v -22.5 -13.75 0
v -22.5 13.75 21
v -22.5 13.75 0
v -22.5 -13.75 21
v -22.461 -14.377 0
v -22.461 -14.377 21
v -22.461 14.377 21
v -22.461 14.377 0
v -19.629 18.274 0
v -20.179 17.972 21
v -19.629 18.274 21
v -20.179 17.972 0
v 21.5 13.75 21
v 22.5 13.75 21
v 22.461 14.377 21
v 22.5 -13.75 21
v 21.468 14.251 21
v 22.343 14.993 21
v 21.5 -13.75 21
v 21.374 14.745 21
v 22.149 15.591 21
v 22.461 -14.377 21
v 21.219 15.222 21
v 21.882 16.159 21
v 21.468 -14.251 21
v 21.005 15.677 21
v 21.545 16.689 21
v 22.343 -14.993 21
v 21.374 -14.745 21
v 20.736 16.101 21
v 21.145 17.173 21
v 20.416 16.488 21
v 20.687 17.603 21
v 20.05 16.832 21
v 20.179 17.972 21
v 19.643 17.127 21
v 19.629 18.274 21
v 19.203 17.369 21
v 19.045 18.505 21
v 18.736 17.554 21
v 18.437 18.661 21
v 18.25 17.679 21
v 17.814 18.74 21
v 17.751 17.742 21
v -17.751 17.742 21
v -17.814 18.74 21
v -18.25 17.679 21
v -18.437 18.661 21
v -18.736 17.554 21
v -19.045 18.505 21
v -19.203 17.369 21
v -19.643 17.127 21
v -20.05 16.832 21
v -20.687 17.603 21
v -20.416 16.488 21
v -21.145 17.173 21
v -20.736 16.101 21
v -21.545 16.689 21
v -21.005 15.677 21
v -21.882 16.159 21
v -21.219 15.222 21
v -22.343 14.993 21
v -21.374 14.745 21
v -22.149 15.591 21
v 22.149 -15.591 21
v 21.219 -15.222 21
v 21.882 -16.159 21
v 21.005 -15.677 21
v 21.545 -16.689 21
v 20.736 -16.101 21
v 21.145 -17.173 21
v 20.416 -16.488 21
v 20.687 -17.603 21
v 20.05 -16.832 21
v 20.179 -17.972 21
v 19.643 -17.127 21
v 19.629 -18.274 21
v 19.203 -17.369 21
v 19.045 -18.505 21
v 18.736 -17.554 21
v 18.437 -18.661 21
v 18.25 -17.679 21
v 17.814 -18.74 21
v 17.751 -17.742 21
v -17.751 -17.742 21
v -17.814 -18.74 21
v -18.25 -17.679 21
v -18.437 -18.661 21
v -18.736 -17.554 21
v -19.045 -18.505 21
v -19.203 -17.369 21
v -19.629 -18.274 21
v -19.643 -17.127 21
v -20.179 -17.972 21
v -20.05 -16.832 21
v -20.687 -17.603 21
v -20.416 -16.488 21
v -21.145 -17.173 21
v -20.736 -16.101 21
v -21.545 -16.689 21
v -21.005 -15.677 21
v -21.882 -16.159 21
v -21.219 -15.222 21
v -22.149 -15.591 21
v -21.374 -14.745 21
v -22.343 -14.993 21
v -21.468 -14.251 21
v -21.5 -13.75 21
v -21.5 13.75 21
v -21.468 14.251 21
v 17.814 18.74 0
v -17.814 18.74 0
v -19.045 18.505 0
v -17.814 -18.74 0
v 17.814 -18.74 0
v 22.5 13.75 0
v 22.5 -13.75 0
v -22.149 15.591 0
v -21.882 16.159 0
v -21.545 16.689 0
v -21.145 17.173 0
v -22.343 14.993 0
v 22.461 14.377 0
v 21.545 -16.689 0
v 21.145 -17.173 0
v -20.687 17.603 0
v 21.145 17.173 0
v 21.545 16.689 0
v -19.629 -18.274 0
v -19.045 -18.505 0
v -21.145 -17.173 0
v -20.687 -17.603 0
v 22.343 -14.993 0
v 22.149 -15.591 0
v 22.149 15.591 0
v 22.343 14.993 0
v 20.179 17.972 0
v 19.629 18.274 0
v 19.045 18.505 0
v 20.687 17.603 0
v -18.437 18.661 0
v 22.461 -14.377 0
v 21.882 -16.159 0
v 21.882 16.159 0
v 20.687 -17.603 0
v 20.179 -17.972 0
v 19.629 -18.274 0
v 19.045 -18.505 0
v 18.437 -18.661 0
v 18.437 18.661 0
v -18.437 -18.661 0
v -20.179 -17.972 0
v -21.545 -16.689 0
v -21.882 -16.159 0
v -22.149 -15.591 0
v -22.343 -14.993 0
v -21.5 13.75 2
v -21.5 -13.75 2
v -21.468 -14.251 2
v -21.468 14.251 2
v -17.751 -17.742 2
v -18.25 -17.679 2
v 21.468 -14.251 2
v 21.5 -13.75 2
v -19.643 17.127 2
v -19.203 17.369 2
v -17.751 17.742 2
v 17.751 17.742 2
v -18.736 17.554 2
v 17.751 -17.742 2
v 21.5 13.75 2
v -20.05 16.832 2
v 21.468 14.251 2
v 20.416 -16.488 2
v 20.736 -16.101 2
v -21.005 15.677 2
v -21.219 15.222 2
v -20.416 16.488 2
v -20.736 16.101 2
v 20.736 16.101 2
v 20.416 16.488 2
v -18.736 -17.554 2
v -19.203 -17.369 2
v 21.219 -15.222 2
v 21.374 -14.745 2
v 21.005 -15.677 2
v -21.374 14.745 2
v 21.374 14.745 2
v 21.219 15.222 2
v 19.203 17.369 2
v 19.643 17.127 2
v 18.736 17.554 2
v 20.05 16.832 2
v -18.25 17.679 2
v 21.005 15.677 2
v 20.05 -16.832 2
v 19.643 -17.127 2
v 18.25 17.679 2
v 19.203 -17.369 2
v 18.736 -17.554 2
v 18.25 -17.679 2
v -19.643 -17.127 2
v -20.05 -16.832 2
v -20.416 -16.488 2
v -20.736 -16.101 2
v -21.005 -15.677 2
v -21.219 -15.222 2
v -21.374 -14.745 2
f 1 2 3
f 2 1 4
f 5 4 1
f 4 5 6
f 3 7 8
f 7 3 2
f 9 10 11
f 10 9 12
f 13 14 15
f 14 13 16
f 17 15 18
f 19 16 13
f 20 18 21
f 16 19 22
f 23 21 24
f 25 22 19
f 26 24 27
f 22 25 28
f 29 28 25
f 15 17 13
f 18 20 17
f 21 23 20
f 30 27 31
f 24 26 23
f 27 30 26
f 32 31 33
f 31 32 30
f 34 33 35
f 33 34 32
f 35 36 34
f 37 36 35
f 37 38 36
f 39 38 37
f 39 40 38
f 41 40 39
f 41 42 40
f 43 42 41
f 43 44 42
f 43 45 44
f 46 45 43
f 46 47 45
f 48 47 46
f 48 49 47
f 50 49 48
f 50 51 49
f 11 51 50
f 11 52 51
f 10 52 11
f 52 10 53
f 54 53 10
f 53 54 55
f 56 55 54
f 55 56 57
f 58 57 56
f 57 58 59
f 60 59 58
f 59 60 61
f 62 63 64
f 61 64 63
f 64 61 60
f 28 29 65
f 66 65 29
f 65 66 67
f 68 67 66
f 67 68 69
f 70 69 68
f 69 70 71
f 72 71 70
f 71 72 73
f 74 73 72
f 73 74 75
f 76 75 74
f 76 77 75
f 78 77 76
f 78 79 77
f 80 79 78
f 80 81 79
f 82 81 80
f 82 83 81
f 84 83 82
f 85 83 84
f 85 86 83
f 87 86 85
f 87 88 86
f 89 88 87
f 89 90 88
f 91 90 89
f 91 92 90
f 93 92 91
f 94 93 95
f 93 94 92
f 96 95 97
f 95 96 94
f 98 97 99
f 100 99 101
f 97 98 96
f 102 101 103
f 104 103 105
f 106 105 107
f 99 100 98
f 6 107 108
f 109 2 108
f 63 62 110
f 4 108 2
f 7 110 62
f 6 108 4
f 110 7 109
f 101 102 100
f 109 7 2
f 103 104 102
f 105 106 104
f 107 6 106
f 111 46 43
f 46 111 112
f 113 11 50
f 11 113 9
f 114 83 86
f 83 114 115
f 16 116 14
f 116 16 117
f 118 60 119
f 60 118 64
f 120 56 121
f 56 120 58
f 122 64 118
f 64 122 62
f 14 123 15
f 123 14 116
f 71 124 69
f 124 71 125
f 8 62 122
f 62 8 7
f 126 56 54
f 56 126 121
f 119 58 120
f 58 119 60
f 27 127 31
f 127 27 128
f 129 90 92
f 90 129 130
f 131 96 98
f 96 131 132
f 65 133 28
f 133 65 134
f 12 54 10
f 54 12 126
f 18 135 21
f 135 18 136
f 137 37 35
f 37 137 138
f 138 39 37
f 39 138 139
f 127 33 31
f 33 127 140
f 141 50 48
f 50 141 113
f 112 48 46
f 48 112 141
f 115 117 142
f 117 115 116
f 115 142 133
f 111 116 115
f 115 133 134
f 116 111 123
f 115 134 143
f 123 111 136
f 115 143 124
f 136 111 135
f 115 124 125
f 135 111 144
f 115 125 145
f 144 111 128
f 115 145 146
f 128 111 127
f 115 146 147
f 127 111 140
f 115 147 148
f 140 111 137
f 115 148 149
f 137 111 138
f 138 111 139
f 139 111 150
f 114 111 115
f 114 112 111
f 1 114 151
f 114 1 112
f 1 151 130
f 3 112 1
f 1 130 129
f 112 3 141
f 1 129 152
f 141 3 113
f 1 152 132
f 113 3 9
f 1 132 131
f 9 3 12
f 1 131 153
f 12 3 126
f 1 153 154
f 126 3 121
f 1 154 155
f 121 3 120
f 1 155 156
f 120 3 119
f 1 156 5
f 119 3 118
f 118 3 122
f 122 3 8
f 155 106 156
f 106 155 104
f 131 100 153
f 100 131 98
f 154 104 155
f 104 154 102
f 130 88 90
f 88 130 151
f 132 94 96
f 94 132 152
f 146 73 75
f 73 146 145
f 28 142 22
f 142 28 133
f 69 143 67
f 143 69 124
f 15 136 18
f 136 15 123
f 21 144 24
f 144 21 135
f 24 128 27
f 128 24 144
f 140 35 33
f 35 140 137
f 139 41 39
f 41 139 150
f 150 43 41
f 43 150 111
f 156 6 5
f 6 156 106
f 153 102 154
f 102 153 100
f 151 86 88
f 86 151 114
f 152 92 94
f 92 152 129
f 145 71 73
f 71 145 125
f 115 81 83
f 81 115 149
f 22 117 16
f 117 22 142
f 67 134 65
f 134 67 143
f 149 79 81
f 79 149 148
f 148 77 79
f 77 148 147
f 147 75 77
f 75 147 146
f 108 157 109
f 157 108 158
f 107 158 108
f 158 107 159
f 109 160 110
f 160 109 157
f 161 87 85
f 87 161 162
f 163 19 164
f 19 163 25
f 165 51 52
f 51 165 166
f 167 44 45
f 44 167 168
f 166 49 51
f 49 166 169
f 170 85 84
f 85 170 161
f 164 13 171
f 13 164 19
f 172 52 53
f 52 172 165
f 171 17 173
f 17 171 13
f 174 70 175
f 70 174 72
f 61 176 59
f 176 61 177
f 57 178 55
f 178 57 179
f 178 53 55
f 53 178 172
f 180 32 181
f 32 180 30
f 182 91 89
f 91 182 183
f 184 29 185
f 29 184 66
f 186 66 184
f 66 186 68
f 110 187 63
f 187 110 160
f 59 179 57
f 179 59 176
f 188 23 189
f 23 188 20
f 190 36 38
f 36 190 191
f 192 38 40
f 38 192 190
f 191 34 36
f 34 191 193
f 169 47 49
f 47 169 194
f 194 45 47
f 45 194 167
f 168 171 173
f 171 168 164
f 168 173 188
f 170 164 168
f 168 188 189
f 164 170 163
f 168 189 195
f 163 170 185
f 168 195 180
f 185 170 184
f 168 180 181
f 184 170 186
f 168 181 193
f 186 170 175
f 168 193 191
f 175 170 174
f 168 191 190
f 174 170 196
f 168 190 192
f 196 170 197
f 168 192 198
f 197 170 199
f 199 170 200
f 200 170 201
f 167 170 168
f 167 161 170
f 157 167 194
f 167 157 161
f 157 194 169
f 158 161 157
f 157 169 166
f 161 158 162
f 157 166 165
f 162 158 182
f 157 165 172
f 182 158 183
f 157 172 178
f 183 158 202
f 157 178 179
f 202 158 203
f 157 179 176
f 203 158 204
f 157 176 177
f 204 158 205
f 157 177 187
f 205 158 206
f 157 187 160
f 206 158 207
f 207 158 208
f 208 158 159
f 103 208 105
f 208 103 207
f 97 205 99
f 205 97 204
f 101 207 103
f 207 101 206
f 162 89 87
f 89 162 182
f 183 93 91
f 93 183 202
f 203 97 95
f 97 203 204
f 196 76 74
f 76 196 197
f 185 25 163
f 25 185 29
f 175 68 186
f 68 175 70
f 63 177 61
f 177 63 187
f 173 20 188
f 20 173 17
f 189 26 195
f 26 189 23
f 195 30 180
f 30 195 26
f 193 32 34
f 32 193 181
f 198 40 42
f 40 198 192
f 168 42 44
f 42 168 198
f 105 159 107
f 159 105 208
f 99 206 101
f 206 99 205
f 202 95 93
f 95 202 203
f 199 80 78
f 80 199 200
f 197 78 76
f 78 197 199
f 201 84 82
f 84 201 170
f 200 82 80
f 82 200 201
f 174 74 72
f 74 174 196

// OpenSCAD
$fn = 50;


difference() {
	union() {
		hull() {
			translate(v = [-17.5000000000, 13.7500000000, 0]) {
				cylinder(h = 21, r = 5);
			}
			translate(v = [17.5000000000, 13.7500000000, 0]) {
				cylinder(h = 21, r = 5);
			}
			translate(v = [-17.5000000000, -13.7500000000, 0]) {
				cylinder(h = 21, r = 5);
			}
			translate(v = [17.5000000000, -13.7500000000, 0]) {
				cylinder(h = 21, r = 5);
			}
		}
	}
	union() {
		translate(v = [0, 0, 2]) {
			#hull() {
				translate(v = [-17.5000000000, 13.7500000000, 0]) {
					cylinder(h = 19, r = 4);
				}
				translate(v = [17.5000000000, 13.7500000000, 0]) {
					cylinder(h = 19, r = 4);
				}
				translate(v = [-17.5000000000, -13.7500000000, 0]) {
					cylinder(h = 19, r = 4);
				}
				translate(v = [17.5000000000, -13.7500000000, 0]) {
					cylinder(h = 19, r = 4);
				}
			}
		}
	}
}
